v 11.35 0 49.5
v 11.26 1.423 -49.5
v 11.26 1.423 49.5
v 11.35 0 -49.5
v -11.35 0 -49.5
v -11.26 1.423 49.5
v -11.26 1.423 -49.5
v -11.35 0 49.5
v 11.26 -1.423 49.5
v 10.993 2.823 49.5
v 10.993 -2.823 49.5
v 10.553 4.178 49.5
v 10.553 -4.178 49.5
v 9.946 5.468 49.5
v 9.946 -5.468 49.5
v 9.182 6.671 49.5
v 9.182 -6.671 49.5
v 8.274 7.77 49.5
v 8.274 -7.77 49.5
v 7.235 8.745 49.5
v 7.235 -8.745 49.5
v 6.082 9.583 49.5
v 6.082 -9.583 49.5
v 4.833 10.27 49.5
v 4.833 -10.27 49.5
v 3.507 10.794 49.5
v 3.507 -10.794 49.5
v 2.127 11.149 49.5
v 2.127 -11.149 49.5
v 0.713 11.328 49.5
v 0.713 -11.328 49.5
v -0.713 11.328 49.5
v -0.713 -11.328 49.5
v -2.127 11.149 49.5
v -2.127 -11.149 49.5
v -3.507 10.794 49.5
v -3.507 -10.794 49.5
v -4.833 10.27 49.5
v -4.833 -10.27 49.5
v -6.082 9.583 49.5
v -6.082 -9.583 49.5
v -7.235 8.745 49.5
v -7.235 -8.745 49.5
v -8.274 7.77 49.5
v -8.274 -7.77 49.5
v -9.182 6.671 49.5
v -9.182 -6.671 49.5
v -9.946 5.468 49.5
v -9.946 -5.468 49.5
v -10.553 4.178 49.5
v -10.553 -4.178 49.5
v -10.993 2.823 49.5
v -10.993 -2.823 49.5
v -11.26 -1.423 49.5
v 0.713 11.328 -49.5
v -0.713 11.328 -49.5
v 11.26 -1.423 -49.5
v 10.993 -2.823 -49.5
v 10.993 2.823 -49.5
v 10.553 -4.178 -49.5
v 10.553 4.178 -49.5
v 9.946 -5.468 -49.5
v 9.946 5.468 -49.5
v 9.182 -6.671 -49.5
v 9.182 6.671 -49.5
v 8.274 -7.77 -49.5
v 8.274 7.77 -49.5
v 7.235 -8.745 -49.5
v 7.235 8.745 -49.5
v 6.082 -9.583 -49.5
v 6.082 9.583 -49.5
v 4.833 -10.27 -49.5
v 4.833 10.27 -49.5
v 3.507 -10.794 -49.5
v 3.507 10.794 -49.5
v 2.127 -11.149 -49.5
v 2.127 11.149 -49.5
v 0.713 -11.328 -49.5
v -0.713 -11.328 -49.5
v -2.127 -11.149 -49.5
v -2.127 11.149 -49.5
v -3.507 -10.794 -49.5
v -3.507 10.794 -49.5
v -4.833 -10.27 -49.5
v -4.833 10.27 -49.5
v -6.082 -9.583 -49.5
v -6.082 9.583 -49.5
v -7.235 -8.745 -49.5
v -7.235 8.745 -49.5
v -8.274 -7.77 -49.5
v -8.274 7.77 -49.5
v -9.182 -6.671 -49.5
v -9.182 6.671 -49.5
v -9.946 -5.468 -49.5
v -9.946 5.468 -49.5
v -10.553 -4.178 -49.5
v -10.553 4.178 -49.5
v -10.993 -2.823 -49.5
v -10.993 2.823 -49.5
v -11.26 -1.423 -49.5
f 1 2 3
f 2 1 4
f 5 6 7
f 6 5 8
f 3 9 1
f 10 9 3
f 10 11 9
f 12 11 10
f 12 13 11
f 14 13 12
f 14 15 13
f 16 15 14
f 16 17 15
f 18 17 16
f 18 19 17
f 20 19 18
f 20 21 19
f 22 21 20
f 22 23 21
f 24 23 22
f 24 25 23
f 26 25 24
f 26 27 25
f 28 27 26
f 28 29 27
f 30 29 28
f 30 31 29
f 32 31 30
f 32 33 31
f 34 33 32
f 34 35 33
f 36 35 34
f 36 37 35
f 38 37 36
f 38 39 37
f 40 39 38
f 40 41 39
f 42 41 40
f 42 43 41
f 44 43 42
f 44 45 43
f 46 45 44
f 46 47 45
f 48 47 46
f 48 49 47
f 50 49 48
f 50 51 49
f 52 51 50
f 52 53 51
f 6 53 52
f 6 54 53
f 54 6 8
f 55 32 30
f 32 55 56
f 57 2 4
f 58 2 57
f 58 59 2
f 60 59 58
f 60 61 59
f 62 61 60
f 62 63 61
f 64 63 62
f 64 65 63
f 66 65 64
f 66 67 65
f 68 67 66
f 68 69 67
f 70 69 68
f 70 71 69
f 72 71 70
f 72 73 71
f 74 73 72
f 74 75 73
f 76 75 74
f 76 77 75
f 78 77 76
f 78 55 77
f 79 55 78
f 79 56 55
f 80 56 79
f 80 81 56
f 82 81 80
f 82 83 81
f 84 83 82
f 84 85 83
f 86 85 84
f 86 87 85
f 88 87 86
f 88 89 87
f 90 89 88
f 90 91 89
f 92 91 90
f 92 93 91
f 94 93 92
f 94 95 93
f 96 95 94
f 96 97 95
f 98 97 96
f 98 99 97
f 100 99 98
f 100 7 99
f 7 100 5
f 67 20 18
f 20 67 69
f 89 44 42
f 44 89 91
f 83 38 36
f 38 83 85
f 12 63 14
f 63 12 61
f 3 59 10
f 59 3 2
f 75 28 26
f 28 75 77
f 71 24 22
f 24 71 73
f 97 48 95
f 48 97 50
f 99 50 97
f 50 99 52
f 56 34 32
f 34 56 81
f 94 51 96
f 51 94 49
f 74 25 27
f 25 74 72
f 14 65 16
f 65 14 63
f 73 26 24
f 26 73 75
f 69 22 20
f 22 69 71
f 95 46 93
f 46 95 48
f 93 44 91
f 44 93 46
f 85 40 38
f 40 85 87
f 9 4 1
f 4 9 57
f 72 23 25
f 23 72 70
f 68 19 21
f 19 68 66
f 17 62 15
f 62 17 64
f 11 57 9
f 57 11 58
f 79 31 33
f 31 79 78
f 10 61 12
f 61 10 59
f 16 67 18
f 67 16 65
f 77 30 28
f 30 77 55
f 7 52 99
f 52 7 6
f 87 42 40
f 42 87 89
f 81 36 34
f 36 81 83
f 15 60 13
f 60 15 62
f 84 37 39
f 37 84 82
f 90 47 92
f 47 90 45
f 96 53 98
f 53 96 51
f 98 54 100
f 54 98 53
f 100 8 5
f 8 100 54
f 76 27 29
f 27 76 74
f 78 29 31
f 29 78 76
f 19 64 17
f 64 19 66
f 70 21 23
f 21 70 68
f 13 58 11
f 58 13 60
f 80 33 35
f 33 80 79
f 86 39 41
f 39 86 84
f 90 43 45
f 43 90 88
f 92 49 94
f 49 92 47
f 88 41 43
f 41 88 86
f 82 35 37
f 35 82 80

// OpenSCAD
$fn = 50;


difference() {
	union() {
		translate(v = [0, 0, -49.5000000000]) {
			cylinder(h = 99, r = 11.3500000000);
		}
	}
	union() {
		translate(v = [0, 0, -100.0000000000]) {
			cylinder(h = 200, r = 0);
		}
	}
}
